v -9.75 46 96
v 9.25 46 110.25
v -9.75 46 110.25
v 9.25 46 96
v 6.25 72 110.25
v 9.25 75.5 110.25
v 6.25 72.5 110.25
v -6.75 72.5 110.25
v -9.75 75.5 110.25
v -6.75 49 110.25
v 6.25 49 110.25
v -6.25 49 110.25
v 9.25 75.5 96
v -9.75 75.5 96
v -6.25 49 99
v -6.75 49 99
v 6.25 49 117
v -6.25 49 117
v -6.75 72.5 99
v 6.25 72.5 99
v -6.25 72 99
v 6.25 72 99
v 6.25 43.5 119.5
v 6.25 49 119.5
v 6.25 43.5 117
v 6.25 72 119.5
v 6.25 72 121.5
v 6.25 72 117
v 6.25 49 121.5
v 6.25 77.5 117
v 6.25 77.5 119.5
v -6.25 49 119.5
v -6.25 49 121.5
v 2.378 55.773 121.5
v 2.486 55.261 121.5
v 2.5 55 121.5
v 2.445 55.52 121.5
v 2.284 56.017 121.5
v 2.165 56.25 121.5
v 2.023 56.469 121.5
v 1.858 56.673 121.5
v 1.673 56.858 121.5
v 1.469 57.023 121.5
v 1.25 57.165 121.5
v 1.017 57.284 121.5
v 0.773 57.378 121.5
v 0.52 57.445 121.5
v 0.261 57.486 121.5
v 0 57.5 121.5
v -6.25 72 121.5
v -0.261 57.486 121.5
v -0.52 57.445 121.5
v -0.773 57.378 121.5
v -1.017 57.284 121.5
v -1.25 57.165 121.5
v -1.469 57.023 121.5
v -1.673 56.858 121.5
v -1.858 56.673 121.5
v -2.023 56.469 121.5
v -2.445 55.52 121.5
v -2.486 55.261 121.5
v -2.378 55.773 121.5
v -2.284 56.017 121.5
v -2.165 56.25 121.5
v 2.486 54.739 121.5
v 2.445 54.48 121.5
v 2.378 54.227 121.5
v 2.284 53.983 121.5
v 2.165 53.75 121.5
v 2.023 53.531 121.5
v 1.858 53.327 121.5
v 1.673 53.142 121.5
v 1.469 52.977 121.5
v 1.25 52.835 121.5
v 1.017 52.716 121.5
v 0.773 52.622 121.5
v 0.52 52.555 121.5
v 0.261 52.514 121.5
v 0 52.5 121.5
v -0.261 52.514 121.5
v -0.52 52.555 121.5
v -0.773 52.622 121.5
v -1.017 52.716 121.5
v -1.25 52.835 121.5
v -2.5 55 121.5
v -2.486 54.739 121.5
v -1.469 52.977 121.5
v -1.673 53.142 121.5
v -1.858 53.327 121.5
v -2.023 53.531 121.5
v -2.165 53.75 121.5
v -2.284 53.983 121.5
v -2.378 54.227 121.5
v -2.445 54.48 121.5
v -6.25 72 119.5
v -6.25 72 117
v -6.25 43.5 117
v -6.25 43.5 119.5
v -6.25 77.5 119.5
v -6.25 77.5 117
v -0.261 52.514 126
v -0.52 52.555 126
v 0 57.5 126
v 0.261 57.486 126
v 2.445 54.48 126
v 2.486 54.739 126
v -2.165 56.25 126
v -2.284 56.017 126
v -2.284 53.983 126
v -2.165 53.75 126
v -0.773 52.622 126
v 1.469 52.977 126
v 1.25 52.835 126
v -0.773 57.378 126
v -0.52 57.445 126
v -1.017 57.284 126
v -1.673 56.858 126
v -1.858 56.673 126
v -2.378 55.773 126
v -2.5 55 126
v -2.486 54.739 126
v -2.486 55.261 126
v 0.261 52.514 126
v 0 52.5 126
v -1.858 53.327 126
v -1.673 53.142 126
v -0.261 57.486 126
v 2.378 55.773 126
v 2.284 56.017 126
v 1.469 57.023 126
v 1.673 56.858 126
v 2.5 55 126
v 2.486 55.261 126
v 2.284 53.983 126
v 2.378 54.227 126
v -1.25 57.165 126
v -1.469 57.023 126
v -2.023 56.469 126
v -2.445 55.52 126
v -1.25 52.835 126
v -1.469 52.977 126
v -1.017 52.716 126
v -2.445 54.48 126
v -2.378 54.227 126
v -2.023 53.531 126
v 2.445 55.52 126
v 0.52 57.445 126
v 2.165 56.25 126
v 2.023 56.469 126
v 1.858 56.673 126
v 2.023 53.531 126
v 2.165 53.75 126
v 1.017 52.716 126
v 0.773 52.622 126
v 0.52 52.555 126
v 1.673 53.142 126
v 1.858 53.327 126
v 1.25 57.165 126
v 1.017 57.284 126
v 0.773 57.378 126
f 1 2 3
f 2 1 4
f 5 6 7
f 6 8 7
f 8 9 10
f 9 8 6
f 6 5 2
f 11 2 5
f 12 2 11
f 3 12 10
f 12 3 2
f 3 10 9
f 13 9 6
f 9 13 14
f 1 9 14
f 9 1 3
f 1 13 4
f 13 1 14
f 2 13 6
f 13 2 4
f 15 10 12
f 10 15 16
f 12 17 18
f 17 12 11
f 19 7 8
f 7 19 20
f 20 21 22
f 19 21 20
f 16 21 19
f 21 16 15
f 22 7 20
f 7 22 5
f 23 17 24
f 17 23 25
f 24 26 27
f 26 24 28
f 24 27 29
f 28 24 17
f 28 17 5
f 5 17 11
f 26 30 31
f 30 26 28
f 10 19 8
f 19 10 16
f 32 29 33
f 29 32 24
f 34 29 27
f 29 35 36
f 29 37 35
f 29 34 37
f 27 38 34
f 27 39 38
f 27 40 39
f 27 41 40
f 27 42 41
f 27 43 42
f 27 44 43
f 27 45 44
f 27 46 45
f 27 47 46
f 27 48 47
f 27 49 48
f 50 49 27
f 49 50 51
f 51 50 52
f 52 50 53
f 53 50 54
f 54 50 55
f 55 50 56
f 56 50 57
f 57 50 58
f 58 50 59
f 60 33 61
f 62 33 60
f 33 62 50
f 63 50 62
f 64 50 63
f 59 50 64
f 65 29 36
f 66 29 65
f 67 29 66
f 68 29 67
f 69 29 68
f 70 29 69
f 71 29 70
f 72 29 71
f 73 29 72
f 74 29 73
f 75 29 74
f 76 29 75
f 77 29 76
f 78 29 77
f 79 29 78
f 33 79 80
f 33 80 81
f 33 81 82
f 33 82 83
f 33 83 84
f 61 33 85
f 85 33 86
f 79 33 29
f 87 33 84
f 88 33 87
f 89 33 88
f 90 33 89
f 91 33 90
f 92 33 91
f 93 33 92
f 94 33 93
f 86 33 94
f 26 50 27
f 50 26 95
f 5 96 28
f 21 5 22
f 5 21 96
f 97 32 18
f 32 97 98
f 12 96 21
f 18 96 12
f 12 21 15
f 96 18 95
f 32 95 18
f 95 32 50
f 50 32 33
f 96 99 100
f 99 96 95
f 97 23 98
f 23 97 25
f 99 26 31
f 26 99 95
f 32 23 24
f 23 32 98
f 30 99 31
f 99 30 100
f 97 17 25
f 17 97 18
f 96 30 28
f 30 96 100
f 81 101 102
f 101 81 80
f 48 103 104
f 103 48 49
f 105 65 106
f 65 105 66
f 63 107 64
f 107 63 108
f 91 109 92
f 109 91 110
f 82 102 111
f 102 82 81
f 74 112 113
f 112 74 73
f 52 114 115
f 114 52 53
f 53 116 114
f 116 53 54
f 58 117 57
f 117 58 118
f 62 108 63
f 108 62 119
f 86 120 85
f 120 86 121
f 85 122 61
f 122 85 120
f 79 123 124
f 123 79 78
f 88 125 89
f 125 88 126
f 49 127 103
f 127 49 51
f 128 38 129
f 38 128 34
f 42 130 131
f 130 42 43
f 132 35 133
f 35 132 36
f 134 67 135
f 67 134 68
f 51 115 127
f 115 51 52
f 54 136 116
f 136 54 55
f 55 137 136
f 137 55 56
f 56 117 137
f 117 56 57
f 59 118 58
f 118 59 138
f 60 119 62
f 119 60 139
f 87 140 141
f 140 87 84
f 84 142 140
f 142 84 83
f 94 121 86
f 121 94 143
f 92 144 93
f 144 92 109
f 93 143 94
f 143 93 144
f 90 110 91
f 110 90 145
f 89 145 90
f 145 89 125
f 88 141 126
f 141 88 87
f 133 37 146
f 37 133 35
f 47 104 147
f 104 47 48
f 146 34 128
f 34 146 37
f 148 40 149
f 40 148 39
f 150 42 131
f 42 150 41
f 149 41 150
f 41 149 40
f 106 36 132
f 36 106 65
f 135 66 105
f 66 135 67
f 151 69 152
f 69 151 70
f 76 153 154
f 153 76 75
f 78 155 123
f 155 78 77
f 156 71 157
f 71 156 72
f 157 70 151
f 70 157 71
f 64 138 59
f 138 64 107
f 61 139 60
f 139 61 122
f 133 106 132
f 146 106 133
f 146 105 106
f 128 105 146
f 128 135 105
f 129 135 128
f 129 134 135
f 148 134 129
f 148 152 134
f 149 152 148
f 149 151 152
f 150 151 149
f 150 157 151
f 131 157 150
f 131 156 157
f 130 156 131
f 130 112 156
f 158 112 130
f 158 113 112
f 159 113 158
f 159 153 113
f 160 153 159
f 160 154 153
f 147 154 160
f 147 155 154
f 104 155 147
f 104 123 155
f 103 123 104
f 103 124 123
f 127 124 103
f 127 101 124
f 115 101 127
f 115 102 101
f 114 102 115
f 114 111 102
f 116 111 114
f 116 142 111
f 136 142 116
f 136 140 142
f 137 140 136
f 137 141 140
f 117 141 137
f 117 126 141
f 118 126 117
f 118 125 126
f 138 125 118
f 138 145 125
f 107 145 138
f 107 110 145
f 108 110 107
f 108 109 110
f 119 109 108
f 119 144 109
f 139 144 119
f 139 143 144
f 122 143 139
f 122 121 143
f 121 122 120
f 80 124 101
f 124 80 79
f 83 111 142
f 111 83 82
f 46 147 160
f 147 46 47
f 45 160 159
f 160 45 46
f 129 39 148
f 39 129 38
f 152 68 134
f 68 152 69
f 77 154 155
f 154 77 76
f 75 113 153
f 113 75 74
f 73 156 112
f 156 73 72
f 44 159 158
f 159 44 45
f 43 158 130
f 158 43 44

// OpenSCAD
// file: ../parts/hardware.scad
// FILE: parts/hardware.scad
module Part_Bolt_M3() { color("silver") { cylinder(d=5.5, h=2); translate([0,0,-15]) cylinder(d=3, h=15); } }

module SG90_Body() {
    cube([23, 12.5, 22.5]); 
    translate([-5.5, 0, 18]) cube([34, 12.5, 2.5]); 
    translate([6, 6.25, 22.5]) cylinder(h = 4.5, d = 5);
}

module Servo_Horn(style) {
    color("white") difference() {
        union() {
            if (style == "double") hull() { cylinder(h=1.5, d=7); translate([15, 0, 0]) cylinder(h=1.5, d=4); translate([-15, 0, 0]) cylinder(h=1.5, d=4); } 
            if (style == "single") hull() { cylinder(h=1.5, d=7); translate([15, 0, 0]) cylinder(h=1.5, d=4); } 
            
            // Extended Hub (Collar)
            cylinder(h=3.0, d=7); 
        }
        // Shaft Socket
        translate([0,0,-0.1]) cylinder(h=3.5, d=5);
    }
}

module SG90_Servo(ang, style) { 
    SG90_Body();
    translate([6, 6.25, 22.5 + 4.5]) rotate([0, 0, ang]) Servo_Horn(style);
}

module SG90_Body_Centered() { translate([-6.0, -6.25, -27.0]) SG90_Body(); }
module SG90_Servo_Centered(ang, style) { translate([-6.0, -6.25, -27.0]) SG90_Servo(ang, style); }

module Servo_Horn_Recess(style) { 
    d_hub=7.2; d_arm=4.2; arm_dist=15.0; 
    union() { 
        hull() { cylinder(h=1.8, d=d_hub, center=true); if (style == "double" || style == "single") translate([arm_dist, 0, 0]) cylinder(h=1.8, d=d_arm, center=true); if (style == "double") translate([-arm_dist, 0, 0]) cylinder(h=1.8, d=d_arm, center=true); } 
        cylinder(h=6, d=3.2, center=true); 
    } 
}
// file: ../parts/gimbal_parts.scad
// FILE: parts/gimbal_parts.scad
include <../config.scad>;
use <hardware.scad>;

module Part_PiCam_Head() translate([-2.5, 0, -4.5]){
    color("gray") difference() { 
        cube([26, 30, 3], center = true); 
        cylinder(h = 5, d = 6.5, center = true); 
        for(mx=[-10.5, 10.5]) for(my=[-10, 10]) translate([mx,my,0]) cylinder(d=2.2, h=5, center=true);
    }
    translate([0, 0, 2]) rotate([0, 0, 180]) Part_Pi_Camera_Module();
}

module Part_Pi_Camera_Module() { color("darkgreen") cube([25, 24, 1], center=true); color("black") translate([0, 2, 2.5]) cube([8, 8, 5], center=true); color("ivory") translate([0, -9.5, 1.5]) cube([20, 4, 2], center=true); }
module Base_Mount() { color("orange") difference() { translate([-3, -3, 0]) cube([29.5, 19, 14.25]); translate([0, 0, 3]) cube([23.5, 13, 22.5]); } }
module U_Bracket_Fixed() { 
    // GAP CALCULATION:
    // Servo Body Depth (~24mm with cable strain relief?) + C-Cradle Base (2.5mm) + Clearance.
    // Let's set a comfortable Gap of 34mm (Adjustable).
    gap_half = 19; // 38mm total gap
    arm_thick = 3;
    base_w = gap_half * 2 + arm_thick * 2;
    
    union() {
        color("orange") difference() { 
            union() { 
                // Base
                translate([-base_w/2, -13.5, 0]) cube([base_w, 27, 3]); 
                // Right Arm
                translate([gap_half, -13.5, 3]) cube([arm_thick, 27, 36.5]); 
                // Left Arm
                translate([-gap_half - arm_thick, -13.5, 3]) cube([arm_thick, 27, 36.5]); 
            } 
            
            // 1. Bottom: Double Arm Horn Recess
            translate([0, 0, 0]) Servo_Horn_Recess("double"); 
            
            // 2. Right Arm: Single Arm Horn Recess (Internal face)
            translate([gap_half, 0, 28]) rotate([0, 90, 0]) Servo_Horn_Recess("single"); 
            
            // 3. Left Arm: Pivot Pin Recess (Internal face)
            translate([-gap_half, 0, 28]) rotate([0, 90, 0]) cylinder(h=10, d=6, center=true); 
        }

        // Add Horns (Additive geometry)
        // 1. Bottom Horn
        translate([0, 0, 0]) rotate([180, 0, 0]) translate([0,0,-1.5]) Servo_Horn("double");

        // 2. Right Arm Horn
        translate([gap_half, 0, 28]) rotate([0, 90, 0]) rotate([180, 0, 0]) translate([0,0,-1.5]) Servo_Horn("single");
    } 
}

module C_Cradle_Fixed() { 
    // "LAY DOWN C" (Refactored)
    // Optimized for standard Servo Body (22.5mm x 12mm x 23mm)
    
    // 1. DIMENSIONS
    wall_thick = 5;          // Thickened wall
    
    // Total Length target: ~22.5mm (Match Servo Body, stop before ears).
    // Length = wall_thick + arm_len_x.
    // 23 = 5 + 18.
    arm_len_x  = 18;         // Restored length to cover body
    arm_h      = 16.0;         // Compact height (-8 to +8)
    
    // 2. POSITIONING
    // Consolidated Offset:
    // Original Pivot (-17) + User Shift (-6) + User Thickness Shift (+2) = -21.
    cradle_origin_x = -21; 
    cradle_shift_y  = -8; 
    
    translate([cradle_origin_x, cradle_shift_y, 0]) color("limegreen") {
        union() {
            // A. LEFT WALL (BASE)
            // Sits at local origin (0, -15, -8)
            // Extended Y-length to 33 to reach Back Arm at Y=13
            translate([0, -15, -arm_h/2]) cube([wall_thick, 33, arm_h]);
            
            // B. PIVOT PIN
            // Extends from local 0,0,0
            translate([0, 8, 0]) rotate([0, -90, 0]) cylinder(d=5.8, h=8);

            // C. FRONT ARM (Camera Side)
            difference() {
                translate([0, -14, -arm_h/2]) cube([arm_len_x + wall_thick, 5, arm_h]); 
            }
            
            // D. CAMERA MOUNT PLATE
            // Attached to Front Arm.
            translate([13.5, -15.5, 0]) rotate([90, 0, 0]) {
                difference() {
                    cube([28, 28, 4], center=true); 
                     // Camera Screw Holes
                     for(x=[-10.5, 10.5]) for(y=[-10, 10]) translate([x,y,0]) cylinder(d=1.8, h=10, center=true);
                }
            }

            // E. BACK ARM
            // Moved to Y=14 (Tightened from 15 based on user feedback).
            difference() {
                translate([0, 14, -arm_h/2]) cube([arm_len_x + wall_thick, 5, arm_h]); 
            }
        }
    }
}
// file: ../config.scad
// FILE: config.scad
// =================================================================
// GLOBAL STATE & CONFIGURATION
// =================================================================

$fn = 60;

// --- ANIMATION STATE (Global Hooks) ---
ir_angle   = 60;
pan_angle  = sin($t * 360) * 45;
tilt_angle = sin($t * 360) * 30;
wheel_rot  = $t * 360 * 2;

// --- DIMENSIONS (Theme) ---
chassis_w = 150;
chassis_l = 180;
chassis_t = 3.0;

// Heights
wheel_radius = 32.5;
chassis_z    = 45.0;
deck_1_z     = chassis_z + chassis_t;
standoff_h   = 45;
deck_2_z     = deck_1_z + standoff_h + chassis_t;
pi_lift      = 12;

half_w = chassis_w / 2;
half_l = chassis_l / 2;

// --- COMPONENT POSITIONS (Layout Grid) ---
pos_gimbal      = [0, 55, deck_2_z];
pos_pi          = [0, -45, deck_2_z];
pos_imu         = [0, 0, deck_2_z];
pos_sonar       = [0, -half_l - 2, deck_1_z];
pos_driver      = [0, 40, deck_1_z + 10];
pos_buck        = [0, 0, deck_1_z + 7];
pos_battery     = [0, -40, deck_1_z + 10];
pos_caster_xy   = [0, -half_l + 35];

// Standoffs
inset_standoff = 10;
pos_standoff_fl = [-half_w + inset_standoff,  half_l - inset_standoff, deck_1_z];
pos_standoff_fr = [ half_w - inset_standoff,  half_l - inset_standoff, deck_1_z];
pos_standoff_rl = [-half_w + inset_standoff, -half_l + inset_standoff, deck_1_z];
pos_standoff_rr = [ half_w - inset_standoff, -half_l + inset_standoff, deck_1_z];

// IR Sensors
ir_inset_x = 25; ir_inset_y = 25; ir_drop = 4;
pos_ir_fl = [-half_w + ir_inset_x,  half_l - ir_inset_y, chassis_z - ir_drop];
pos_ir_fr = [ half_w - ir_inset_x,  half_l - ir_inset_y, chassis_z - ir_drop];
pos_ir_rl = [-half_w + ir_inset_x, -half_l + ir_inset_y, chassis_z - ir_drop];
pos_ir_rr = [ half_w - ir_inset_x, -half_l + ir_inset_y, chassis_z - ir_drop];
// main file
include <../config.scad>;
use <../parts/gimbal_parts.scad>;
use <../parts/hardware.scad>;

// 2a. (Base_Mount, pan servo)
// From assemblies/gimbal_layer.scad
translate(pos_gimbal) rotate([0, 0, 90]) translate([-6, -6.25, 0]) { 
    Base_Mount();
    translate([0, 0, 3.0]) color("dodgerblue", 0.3) SG90_Body();
}
